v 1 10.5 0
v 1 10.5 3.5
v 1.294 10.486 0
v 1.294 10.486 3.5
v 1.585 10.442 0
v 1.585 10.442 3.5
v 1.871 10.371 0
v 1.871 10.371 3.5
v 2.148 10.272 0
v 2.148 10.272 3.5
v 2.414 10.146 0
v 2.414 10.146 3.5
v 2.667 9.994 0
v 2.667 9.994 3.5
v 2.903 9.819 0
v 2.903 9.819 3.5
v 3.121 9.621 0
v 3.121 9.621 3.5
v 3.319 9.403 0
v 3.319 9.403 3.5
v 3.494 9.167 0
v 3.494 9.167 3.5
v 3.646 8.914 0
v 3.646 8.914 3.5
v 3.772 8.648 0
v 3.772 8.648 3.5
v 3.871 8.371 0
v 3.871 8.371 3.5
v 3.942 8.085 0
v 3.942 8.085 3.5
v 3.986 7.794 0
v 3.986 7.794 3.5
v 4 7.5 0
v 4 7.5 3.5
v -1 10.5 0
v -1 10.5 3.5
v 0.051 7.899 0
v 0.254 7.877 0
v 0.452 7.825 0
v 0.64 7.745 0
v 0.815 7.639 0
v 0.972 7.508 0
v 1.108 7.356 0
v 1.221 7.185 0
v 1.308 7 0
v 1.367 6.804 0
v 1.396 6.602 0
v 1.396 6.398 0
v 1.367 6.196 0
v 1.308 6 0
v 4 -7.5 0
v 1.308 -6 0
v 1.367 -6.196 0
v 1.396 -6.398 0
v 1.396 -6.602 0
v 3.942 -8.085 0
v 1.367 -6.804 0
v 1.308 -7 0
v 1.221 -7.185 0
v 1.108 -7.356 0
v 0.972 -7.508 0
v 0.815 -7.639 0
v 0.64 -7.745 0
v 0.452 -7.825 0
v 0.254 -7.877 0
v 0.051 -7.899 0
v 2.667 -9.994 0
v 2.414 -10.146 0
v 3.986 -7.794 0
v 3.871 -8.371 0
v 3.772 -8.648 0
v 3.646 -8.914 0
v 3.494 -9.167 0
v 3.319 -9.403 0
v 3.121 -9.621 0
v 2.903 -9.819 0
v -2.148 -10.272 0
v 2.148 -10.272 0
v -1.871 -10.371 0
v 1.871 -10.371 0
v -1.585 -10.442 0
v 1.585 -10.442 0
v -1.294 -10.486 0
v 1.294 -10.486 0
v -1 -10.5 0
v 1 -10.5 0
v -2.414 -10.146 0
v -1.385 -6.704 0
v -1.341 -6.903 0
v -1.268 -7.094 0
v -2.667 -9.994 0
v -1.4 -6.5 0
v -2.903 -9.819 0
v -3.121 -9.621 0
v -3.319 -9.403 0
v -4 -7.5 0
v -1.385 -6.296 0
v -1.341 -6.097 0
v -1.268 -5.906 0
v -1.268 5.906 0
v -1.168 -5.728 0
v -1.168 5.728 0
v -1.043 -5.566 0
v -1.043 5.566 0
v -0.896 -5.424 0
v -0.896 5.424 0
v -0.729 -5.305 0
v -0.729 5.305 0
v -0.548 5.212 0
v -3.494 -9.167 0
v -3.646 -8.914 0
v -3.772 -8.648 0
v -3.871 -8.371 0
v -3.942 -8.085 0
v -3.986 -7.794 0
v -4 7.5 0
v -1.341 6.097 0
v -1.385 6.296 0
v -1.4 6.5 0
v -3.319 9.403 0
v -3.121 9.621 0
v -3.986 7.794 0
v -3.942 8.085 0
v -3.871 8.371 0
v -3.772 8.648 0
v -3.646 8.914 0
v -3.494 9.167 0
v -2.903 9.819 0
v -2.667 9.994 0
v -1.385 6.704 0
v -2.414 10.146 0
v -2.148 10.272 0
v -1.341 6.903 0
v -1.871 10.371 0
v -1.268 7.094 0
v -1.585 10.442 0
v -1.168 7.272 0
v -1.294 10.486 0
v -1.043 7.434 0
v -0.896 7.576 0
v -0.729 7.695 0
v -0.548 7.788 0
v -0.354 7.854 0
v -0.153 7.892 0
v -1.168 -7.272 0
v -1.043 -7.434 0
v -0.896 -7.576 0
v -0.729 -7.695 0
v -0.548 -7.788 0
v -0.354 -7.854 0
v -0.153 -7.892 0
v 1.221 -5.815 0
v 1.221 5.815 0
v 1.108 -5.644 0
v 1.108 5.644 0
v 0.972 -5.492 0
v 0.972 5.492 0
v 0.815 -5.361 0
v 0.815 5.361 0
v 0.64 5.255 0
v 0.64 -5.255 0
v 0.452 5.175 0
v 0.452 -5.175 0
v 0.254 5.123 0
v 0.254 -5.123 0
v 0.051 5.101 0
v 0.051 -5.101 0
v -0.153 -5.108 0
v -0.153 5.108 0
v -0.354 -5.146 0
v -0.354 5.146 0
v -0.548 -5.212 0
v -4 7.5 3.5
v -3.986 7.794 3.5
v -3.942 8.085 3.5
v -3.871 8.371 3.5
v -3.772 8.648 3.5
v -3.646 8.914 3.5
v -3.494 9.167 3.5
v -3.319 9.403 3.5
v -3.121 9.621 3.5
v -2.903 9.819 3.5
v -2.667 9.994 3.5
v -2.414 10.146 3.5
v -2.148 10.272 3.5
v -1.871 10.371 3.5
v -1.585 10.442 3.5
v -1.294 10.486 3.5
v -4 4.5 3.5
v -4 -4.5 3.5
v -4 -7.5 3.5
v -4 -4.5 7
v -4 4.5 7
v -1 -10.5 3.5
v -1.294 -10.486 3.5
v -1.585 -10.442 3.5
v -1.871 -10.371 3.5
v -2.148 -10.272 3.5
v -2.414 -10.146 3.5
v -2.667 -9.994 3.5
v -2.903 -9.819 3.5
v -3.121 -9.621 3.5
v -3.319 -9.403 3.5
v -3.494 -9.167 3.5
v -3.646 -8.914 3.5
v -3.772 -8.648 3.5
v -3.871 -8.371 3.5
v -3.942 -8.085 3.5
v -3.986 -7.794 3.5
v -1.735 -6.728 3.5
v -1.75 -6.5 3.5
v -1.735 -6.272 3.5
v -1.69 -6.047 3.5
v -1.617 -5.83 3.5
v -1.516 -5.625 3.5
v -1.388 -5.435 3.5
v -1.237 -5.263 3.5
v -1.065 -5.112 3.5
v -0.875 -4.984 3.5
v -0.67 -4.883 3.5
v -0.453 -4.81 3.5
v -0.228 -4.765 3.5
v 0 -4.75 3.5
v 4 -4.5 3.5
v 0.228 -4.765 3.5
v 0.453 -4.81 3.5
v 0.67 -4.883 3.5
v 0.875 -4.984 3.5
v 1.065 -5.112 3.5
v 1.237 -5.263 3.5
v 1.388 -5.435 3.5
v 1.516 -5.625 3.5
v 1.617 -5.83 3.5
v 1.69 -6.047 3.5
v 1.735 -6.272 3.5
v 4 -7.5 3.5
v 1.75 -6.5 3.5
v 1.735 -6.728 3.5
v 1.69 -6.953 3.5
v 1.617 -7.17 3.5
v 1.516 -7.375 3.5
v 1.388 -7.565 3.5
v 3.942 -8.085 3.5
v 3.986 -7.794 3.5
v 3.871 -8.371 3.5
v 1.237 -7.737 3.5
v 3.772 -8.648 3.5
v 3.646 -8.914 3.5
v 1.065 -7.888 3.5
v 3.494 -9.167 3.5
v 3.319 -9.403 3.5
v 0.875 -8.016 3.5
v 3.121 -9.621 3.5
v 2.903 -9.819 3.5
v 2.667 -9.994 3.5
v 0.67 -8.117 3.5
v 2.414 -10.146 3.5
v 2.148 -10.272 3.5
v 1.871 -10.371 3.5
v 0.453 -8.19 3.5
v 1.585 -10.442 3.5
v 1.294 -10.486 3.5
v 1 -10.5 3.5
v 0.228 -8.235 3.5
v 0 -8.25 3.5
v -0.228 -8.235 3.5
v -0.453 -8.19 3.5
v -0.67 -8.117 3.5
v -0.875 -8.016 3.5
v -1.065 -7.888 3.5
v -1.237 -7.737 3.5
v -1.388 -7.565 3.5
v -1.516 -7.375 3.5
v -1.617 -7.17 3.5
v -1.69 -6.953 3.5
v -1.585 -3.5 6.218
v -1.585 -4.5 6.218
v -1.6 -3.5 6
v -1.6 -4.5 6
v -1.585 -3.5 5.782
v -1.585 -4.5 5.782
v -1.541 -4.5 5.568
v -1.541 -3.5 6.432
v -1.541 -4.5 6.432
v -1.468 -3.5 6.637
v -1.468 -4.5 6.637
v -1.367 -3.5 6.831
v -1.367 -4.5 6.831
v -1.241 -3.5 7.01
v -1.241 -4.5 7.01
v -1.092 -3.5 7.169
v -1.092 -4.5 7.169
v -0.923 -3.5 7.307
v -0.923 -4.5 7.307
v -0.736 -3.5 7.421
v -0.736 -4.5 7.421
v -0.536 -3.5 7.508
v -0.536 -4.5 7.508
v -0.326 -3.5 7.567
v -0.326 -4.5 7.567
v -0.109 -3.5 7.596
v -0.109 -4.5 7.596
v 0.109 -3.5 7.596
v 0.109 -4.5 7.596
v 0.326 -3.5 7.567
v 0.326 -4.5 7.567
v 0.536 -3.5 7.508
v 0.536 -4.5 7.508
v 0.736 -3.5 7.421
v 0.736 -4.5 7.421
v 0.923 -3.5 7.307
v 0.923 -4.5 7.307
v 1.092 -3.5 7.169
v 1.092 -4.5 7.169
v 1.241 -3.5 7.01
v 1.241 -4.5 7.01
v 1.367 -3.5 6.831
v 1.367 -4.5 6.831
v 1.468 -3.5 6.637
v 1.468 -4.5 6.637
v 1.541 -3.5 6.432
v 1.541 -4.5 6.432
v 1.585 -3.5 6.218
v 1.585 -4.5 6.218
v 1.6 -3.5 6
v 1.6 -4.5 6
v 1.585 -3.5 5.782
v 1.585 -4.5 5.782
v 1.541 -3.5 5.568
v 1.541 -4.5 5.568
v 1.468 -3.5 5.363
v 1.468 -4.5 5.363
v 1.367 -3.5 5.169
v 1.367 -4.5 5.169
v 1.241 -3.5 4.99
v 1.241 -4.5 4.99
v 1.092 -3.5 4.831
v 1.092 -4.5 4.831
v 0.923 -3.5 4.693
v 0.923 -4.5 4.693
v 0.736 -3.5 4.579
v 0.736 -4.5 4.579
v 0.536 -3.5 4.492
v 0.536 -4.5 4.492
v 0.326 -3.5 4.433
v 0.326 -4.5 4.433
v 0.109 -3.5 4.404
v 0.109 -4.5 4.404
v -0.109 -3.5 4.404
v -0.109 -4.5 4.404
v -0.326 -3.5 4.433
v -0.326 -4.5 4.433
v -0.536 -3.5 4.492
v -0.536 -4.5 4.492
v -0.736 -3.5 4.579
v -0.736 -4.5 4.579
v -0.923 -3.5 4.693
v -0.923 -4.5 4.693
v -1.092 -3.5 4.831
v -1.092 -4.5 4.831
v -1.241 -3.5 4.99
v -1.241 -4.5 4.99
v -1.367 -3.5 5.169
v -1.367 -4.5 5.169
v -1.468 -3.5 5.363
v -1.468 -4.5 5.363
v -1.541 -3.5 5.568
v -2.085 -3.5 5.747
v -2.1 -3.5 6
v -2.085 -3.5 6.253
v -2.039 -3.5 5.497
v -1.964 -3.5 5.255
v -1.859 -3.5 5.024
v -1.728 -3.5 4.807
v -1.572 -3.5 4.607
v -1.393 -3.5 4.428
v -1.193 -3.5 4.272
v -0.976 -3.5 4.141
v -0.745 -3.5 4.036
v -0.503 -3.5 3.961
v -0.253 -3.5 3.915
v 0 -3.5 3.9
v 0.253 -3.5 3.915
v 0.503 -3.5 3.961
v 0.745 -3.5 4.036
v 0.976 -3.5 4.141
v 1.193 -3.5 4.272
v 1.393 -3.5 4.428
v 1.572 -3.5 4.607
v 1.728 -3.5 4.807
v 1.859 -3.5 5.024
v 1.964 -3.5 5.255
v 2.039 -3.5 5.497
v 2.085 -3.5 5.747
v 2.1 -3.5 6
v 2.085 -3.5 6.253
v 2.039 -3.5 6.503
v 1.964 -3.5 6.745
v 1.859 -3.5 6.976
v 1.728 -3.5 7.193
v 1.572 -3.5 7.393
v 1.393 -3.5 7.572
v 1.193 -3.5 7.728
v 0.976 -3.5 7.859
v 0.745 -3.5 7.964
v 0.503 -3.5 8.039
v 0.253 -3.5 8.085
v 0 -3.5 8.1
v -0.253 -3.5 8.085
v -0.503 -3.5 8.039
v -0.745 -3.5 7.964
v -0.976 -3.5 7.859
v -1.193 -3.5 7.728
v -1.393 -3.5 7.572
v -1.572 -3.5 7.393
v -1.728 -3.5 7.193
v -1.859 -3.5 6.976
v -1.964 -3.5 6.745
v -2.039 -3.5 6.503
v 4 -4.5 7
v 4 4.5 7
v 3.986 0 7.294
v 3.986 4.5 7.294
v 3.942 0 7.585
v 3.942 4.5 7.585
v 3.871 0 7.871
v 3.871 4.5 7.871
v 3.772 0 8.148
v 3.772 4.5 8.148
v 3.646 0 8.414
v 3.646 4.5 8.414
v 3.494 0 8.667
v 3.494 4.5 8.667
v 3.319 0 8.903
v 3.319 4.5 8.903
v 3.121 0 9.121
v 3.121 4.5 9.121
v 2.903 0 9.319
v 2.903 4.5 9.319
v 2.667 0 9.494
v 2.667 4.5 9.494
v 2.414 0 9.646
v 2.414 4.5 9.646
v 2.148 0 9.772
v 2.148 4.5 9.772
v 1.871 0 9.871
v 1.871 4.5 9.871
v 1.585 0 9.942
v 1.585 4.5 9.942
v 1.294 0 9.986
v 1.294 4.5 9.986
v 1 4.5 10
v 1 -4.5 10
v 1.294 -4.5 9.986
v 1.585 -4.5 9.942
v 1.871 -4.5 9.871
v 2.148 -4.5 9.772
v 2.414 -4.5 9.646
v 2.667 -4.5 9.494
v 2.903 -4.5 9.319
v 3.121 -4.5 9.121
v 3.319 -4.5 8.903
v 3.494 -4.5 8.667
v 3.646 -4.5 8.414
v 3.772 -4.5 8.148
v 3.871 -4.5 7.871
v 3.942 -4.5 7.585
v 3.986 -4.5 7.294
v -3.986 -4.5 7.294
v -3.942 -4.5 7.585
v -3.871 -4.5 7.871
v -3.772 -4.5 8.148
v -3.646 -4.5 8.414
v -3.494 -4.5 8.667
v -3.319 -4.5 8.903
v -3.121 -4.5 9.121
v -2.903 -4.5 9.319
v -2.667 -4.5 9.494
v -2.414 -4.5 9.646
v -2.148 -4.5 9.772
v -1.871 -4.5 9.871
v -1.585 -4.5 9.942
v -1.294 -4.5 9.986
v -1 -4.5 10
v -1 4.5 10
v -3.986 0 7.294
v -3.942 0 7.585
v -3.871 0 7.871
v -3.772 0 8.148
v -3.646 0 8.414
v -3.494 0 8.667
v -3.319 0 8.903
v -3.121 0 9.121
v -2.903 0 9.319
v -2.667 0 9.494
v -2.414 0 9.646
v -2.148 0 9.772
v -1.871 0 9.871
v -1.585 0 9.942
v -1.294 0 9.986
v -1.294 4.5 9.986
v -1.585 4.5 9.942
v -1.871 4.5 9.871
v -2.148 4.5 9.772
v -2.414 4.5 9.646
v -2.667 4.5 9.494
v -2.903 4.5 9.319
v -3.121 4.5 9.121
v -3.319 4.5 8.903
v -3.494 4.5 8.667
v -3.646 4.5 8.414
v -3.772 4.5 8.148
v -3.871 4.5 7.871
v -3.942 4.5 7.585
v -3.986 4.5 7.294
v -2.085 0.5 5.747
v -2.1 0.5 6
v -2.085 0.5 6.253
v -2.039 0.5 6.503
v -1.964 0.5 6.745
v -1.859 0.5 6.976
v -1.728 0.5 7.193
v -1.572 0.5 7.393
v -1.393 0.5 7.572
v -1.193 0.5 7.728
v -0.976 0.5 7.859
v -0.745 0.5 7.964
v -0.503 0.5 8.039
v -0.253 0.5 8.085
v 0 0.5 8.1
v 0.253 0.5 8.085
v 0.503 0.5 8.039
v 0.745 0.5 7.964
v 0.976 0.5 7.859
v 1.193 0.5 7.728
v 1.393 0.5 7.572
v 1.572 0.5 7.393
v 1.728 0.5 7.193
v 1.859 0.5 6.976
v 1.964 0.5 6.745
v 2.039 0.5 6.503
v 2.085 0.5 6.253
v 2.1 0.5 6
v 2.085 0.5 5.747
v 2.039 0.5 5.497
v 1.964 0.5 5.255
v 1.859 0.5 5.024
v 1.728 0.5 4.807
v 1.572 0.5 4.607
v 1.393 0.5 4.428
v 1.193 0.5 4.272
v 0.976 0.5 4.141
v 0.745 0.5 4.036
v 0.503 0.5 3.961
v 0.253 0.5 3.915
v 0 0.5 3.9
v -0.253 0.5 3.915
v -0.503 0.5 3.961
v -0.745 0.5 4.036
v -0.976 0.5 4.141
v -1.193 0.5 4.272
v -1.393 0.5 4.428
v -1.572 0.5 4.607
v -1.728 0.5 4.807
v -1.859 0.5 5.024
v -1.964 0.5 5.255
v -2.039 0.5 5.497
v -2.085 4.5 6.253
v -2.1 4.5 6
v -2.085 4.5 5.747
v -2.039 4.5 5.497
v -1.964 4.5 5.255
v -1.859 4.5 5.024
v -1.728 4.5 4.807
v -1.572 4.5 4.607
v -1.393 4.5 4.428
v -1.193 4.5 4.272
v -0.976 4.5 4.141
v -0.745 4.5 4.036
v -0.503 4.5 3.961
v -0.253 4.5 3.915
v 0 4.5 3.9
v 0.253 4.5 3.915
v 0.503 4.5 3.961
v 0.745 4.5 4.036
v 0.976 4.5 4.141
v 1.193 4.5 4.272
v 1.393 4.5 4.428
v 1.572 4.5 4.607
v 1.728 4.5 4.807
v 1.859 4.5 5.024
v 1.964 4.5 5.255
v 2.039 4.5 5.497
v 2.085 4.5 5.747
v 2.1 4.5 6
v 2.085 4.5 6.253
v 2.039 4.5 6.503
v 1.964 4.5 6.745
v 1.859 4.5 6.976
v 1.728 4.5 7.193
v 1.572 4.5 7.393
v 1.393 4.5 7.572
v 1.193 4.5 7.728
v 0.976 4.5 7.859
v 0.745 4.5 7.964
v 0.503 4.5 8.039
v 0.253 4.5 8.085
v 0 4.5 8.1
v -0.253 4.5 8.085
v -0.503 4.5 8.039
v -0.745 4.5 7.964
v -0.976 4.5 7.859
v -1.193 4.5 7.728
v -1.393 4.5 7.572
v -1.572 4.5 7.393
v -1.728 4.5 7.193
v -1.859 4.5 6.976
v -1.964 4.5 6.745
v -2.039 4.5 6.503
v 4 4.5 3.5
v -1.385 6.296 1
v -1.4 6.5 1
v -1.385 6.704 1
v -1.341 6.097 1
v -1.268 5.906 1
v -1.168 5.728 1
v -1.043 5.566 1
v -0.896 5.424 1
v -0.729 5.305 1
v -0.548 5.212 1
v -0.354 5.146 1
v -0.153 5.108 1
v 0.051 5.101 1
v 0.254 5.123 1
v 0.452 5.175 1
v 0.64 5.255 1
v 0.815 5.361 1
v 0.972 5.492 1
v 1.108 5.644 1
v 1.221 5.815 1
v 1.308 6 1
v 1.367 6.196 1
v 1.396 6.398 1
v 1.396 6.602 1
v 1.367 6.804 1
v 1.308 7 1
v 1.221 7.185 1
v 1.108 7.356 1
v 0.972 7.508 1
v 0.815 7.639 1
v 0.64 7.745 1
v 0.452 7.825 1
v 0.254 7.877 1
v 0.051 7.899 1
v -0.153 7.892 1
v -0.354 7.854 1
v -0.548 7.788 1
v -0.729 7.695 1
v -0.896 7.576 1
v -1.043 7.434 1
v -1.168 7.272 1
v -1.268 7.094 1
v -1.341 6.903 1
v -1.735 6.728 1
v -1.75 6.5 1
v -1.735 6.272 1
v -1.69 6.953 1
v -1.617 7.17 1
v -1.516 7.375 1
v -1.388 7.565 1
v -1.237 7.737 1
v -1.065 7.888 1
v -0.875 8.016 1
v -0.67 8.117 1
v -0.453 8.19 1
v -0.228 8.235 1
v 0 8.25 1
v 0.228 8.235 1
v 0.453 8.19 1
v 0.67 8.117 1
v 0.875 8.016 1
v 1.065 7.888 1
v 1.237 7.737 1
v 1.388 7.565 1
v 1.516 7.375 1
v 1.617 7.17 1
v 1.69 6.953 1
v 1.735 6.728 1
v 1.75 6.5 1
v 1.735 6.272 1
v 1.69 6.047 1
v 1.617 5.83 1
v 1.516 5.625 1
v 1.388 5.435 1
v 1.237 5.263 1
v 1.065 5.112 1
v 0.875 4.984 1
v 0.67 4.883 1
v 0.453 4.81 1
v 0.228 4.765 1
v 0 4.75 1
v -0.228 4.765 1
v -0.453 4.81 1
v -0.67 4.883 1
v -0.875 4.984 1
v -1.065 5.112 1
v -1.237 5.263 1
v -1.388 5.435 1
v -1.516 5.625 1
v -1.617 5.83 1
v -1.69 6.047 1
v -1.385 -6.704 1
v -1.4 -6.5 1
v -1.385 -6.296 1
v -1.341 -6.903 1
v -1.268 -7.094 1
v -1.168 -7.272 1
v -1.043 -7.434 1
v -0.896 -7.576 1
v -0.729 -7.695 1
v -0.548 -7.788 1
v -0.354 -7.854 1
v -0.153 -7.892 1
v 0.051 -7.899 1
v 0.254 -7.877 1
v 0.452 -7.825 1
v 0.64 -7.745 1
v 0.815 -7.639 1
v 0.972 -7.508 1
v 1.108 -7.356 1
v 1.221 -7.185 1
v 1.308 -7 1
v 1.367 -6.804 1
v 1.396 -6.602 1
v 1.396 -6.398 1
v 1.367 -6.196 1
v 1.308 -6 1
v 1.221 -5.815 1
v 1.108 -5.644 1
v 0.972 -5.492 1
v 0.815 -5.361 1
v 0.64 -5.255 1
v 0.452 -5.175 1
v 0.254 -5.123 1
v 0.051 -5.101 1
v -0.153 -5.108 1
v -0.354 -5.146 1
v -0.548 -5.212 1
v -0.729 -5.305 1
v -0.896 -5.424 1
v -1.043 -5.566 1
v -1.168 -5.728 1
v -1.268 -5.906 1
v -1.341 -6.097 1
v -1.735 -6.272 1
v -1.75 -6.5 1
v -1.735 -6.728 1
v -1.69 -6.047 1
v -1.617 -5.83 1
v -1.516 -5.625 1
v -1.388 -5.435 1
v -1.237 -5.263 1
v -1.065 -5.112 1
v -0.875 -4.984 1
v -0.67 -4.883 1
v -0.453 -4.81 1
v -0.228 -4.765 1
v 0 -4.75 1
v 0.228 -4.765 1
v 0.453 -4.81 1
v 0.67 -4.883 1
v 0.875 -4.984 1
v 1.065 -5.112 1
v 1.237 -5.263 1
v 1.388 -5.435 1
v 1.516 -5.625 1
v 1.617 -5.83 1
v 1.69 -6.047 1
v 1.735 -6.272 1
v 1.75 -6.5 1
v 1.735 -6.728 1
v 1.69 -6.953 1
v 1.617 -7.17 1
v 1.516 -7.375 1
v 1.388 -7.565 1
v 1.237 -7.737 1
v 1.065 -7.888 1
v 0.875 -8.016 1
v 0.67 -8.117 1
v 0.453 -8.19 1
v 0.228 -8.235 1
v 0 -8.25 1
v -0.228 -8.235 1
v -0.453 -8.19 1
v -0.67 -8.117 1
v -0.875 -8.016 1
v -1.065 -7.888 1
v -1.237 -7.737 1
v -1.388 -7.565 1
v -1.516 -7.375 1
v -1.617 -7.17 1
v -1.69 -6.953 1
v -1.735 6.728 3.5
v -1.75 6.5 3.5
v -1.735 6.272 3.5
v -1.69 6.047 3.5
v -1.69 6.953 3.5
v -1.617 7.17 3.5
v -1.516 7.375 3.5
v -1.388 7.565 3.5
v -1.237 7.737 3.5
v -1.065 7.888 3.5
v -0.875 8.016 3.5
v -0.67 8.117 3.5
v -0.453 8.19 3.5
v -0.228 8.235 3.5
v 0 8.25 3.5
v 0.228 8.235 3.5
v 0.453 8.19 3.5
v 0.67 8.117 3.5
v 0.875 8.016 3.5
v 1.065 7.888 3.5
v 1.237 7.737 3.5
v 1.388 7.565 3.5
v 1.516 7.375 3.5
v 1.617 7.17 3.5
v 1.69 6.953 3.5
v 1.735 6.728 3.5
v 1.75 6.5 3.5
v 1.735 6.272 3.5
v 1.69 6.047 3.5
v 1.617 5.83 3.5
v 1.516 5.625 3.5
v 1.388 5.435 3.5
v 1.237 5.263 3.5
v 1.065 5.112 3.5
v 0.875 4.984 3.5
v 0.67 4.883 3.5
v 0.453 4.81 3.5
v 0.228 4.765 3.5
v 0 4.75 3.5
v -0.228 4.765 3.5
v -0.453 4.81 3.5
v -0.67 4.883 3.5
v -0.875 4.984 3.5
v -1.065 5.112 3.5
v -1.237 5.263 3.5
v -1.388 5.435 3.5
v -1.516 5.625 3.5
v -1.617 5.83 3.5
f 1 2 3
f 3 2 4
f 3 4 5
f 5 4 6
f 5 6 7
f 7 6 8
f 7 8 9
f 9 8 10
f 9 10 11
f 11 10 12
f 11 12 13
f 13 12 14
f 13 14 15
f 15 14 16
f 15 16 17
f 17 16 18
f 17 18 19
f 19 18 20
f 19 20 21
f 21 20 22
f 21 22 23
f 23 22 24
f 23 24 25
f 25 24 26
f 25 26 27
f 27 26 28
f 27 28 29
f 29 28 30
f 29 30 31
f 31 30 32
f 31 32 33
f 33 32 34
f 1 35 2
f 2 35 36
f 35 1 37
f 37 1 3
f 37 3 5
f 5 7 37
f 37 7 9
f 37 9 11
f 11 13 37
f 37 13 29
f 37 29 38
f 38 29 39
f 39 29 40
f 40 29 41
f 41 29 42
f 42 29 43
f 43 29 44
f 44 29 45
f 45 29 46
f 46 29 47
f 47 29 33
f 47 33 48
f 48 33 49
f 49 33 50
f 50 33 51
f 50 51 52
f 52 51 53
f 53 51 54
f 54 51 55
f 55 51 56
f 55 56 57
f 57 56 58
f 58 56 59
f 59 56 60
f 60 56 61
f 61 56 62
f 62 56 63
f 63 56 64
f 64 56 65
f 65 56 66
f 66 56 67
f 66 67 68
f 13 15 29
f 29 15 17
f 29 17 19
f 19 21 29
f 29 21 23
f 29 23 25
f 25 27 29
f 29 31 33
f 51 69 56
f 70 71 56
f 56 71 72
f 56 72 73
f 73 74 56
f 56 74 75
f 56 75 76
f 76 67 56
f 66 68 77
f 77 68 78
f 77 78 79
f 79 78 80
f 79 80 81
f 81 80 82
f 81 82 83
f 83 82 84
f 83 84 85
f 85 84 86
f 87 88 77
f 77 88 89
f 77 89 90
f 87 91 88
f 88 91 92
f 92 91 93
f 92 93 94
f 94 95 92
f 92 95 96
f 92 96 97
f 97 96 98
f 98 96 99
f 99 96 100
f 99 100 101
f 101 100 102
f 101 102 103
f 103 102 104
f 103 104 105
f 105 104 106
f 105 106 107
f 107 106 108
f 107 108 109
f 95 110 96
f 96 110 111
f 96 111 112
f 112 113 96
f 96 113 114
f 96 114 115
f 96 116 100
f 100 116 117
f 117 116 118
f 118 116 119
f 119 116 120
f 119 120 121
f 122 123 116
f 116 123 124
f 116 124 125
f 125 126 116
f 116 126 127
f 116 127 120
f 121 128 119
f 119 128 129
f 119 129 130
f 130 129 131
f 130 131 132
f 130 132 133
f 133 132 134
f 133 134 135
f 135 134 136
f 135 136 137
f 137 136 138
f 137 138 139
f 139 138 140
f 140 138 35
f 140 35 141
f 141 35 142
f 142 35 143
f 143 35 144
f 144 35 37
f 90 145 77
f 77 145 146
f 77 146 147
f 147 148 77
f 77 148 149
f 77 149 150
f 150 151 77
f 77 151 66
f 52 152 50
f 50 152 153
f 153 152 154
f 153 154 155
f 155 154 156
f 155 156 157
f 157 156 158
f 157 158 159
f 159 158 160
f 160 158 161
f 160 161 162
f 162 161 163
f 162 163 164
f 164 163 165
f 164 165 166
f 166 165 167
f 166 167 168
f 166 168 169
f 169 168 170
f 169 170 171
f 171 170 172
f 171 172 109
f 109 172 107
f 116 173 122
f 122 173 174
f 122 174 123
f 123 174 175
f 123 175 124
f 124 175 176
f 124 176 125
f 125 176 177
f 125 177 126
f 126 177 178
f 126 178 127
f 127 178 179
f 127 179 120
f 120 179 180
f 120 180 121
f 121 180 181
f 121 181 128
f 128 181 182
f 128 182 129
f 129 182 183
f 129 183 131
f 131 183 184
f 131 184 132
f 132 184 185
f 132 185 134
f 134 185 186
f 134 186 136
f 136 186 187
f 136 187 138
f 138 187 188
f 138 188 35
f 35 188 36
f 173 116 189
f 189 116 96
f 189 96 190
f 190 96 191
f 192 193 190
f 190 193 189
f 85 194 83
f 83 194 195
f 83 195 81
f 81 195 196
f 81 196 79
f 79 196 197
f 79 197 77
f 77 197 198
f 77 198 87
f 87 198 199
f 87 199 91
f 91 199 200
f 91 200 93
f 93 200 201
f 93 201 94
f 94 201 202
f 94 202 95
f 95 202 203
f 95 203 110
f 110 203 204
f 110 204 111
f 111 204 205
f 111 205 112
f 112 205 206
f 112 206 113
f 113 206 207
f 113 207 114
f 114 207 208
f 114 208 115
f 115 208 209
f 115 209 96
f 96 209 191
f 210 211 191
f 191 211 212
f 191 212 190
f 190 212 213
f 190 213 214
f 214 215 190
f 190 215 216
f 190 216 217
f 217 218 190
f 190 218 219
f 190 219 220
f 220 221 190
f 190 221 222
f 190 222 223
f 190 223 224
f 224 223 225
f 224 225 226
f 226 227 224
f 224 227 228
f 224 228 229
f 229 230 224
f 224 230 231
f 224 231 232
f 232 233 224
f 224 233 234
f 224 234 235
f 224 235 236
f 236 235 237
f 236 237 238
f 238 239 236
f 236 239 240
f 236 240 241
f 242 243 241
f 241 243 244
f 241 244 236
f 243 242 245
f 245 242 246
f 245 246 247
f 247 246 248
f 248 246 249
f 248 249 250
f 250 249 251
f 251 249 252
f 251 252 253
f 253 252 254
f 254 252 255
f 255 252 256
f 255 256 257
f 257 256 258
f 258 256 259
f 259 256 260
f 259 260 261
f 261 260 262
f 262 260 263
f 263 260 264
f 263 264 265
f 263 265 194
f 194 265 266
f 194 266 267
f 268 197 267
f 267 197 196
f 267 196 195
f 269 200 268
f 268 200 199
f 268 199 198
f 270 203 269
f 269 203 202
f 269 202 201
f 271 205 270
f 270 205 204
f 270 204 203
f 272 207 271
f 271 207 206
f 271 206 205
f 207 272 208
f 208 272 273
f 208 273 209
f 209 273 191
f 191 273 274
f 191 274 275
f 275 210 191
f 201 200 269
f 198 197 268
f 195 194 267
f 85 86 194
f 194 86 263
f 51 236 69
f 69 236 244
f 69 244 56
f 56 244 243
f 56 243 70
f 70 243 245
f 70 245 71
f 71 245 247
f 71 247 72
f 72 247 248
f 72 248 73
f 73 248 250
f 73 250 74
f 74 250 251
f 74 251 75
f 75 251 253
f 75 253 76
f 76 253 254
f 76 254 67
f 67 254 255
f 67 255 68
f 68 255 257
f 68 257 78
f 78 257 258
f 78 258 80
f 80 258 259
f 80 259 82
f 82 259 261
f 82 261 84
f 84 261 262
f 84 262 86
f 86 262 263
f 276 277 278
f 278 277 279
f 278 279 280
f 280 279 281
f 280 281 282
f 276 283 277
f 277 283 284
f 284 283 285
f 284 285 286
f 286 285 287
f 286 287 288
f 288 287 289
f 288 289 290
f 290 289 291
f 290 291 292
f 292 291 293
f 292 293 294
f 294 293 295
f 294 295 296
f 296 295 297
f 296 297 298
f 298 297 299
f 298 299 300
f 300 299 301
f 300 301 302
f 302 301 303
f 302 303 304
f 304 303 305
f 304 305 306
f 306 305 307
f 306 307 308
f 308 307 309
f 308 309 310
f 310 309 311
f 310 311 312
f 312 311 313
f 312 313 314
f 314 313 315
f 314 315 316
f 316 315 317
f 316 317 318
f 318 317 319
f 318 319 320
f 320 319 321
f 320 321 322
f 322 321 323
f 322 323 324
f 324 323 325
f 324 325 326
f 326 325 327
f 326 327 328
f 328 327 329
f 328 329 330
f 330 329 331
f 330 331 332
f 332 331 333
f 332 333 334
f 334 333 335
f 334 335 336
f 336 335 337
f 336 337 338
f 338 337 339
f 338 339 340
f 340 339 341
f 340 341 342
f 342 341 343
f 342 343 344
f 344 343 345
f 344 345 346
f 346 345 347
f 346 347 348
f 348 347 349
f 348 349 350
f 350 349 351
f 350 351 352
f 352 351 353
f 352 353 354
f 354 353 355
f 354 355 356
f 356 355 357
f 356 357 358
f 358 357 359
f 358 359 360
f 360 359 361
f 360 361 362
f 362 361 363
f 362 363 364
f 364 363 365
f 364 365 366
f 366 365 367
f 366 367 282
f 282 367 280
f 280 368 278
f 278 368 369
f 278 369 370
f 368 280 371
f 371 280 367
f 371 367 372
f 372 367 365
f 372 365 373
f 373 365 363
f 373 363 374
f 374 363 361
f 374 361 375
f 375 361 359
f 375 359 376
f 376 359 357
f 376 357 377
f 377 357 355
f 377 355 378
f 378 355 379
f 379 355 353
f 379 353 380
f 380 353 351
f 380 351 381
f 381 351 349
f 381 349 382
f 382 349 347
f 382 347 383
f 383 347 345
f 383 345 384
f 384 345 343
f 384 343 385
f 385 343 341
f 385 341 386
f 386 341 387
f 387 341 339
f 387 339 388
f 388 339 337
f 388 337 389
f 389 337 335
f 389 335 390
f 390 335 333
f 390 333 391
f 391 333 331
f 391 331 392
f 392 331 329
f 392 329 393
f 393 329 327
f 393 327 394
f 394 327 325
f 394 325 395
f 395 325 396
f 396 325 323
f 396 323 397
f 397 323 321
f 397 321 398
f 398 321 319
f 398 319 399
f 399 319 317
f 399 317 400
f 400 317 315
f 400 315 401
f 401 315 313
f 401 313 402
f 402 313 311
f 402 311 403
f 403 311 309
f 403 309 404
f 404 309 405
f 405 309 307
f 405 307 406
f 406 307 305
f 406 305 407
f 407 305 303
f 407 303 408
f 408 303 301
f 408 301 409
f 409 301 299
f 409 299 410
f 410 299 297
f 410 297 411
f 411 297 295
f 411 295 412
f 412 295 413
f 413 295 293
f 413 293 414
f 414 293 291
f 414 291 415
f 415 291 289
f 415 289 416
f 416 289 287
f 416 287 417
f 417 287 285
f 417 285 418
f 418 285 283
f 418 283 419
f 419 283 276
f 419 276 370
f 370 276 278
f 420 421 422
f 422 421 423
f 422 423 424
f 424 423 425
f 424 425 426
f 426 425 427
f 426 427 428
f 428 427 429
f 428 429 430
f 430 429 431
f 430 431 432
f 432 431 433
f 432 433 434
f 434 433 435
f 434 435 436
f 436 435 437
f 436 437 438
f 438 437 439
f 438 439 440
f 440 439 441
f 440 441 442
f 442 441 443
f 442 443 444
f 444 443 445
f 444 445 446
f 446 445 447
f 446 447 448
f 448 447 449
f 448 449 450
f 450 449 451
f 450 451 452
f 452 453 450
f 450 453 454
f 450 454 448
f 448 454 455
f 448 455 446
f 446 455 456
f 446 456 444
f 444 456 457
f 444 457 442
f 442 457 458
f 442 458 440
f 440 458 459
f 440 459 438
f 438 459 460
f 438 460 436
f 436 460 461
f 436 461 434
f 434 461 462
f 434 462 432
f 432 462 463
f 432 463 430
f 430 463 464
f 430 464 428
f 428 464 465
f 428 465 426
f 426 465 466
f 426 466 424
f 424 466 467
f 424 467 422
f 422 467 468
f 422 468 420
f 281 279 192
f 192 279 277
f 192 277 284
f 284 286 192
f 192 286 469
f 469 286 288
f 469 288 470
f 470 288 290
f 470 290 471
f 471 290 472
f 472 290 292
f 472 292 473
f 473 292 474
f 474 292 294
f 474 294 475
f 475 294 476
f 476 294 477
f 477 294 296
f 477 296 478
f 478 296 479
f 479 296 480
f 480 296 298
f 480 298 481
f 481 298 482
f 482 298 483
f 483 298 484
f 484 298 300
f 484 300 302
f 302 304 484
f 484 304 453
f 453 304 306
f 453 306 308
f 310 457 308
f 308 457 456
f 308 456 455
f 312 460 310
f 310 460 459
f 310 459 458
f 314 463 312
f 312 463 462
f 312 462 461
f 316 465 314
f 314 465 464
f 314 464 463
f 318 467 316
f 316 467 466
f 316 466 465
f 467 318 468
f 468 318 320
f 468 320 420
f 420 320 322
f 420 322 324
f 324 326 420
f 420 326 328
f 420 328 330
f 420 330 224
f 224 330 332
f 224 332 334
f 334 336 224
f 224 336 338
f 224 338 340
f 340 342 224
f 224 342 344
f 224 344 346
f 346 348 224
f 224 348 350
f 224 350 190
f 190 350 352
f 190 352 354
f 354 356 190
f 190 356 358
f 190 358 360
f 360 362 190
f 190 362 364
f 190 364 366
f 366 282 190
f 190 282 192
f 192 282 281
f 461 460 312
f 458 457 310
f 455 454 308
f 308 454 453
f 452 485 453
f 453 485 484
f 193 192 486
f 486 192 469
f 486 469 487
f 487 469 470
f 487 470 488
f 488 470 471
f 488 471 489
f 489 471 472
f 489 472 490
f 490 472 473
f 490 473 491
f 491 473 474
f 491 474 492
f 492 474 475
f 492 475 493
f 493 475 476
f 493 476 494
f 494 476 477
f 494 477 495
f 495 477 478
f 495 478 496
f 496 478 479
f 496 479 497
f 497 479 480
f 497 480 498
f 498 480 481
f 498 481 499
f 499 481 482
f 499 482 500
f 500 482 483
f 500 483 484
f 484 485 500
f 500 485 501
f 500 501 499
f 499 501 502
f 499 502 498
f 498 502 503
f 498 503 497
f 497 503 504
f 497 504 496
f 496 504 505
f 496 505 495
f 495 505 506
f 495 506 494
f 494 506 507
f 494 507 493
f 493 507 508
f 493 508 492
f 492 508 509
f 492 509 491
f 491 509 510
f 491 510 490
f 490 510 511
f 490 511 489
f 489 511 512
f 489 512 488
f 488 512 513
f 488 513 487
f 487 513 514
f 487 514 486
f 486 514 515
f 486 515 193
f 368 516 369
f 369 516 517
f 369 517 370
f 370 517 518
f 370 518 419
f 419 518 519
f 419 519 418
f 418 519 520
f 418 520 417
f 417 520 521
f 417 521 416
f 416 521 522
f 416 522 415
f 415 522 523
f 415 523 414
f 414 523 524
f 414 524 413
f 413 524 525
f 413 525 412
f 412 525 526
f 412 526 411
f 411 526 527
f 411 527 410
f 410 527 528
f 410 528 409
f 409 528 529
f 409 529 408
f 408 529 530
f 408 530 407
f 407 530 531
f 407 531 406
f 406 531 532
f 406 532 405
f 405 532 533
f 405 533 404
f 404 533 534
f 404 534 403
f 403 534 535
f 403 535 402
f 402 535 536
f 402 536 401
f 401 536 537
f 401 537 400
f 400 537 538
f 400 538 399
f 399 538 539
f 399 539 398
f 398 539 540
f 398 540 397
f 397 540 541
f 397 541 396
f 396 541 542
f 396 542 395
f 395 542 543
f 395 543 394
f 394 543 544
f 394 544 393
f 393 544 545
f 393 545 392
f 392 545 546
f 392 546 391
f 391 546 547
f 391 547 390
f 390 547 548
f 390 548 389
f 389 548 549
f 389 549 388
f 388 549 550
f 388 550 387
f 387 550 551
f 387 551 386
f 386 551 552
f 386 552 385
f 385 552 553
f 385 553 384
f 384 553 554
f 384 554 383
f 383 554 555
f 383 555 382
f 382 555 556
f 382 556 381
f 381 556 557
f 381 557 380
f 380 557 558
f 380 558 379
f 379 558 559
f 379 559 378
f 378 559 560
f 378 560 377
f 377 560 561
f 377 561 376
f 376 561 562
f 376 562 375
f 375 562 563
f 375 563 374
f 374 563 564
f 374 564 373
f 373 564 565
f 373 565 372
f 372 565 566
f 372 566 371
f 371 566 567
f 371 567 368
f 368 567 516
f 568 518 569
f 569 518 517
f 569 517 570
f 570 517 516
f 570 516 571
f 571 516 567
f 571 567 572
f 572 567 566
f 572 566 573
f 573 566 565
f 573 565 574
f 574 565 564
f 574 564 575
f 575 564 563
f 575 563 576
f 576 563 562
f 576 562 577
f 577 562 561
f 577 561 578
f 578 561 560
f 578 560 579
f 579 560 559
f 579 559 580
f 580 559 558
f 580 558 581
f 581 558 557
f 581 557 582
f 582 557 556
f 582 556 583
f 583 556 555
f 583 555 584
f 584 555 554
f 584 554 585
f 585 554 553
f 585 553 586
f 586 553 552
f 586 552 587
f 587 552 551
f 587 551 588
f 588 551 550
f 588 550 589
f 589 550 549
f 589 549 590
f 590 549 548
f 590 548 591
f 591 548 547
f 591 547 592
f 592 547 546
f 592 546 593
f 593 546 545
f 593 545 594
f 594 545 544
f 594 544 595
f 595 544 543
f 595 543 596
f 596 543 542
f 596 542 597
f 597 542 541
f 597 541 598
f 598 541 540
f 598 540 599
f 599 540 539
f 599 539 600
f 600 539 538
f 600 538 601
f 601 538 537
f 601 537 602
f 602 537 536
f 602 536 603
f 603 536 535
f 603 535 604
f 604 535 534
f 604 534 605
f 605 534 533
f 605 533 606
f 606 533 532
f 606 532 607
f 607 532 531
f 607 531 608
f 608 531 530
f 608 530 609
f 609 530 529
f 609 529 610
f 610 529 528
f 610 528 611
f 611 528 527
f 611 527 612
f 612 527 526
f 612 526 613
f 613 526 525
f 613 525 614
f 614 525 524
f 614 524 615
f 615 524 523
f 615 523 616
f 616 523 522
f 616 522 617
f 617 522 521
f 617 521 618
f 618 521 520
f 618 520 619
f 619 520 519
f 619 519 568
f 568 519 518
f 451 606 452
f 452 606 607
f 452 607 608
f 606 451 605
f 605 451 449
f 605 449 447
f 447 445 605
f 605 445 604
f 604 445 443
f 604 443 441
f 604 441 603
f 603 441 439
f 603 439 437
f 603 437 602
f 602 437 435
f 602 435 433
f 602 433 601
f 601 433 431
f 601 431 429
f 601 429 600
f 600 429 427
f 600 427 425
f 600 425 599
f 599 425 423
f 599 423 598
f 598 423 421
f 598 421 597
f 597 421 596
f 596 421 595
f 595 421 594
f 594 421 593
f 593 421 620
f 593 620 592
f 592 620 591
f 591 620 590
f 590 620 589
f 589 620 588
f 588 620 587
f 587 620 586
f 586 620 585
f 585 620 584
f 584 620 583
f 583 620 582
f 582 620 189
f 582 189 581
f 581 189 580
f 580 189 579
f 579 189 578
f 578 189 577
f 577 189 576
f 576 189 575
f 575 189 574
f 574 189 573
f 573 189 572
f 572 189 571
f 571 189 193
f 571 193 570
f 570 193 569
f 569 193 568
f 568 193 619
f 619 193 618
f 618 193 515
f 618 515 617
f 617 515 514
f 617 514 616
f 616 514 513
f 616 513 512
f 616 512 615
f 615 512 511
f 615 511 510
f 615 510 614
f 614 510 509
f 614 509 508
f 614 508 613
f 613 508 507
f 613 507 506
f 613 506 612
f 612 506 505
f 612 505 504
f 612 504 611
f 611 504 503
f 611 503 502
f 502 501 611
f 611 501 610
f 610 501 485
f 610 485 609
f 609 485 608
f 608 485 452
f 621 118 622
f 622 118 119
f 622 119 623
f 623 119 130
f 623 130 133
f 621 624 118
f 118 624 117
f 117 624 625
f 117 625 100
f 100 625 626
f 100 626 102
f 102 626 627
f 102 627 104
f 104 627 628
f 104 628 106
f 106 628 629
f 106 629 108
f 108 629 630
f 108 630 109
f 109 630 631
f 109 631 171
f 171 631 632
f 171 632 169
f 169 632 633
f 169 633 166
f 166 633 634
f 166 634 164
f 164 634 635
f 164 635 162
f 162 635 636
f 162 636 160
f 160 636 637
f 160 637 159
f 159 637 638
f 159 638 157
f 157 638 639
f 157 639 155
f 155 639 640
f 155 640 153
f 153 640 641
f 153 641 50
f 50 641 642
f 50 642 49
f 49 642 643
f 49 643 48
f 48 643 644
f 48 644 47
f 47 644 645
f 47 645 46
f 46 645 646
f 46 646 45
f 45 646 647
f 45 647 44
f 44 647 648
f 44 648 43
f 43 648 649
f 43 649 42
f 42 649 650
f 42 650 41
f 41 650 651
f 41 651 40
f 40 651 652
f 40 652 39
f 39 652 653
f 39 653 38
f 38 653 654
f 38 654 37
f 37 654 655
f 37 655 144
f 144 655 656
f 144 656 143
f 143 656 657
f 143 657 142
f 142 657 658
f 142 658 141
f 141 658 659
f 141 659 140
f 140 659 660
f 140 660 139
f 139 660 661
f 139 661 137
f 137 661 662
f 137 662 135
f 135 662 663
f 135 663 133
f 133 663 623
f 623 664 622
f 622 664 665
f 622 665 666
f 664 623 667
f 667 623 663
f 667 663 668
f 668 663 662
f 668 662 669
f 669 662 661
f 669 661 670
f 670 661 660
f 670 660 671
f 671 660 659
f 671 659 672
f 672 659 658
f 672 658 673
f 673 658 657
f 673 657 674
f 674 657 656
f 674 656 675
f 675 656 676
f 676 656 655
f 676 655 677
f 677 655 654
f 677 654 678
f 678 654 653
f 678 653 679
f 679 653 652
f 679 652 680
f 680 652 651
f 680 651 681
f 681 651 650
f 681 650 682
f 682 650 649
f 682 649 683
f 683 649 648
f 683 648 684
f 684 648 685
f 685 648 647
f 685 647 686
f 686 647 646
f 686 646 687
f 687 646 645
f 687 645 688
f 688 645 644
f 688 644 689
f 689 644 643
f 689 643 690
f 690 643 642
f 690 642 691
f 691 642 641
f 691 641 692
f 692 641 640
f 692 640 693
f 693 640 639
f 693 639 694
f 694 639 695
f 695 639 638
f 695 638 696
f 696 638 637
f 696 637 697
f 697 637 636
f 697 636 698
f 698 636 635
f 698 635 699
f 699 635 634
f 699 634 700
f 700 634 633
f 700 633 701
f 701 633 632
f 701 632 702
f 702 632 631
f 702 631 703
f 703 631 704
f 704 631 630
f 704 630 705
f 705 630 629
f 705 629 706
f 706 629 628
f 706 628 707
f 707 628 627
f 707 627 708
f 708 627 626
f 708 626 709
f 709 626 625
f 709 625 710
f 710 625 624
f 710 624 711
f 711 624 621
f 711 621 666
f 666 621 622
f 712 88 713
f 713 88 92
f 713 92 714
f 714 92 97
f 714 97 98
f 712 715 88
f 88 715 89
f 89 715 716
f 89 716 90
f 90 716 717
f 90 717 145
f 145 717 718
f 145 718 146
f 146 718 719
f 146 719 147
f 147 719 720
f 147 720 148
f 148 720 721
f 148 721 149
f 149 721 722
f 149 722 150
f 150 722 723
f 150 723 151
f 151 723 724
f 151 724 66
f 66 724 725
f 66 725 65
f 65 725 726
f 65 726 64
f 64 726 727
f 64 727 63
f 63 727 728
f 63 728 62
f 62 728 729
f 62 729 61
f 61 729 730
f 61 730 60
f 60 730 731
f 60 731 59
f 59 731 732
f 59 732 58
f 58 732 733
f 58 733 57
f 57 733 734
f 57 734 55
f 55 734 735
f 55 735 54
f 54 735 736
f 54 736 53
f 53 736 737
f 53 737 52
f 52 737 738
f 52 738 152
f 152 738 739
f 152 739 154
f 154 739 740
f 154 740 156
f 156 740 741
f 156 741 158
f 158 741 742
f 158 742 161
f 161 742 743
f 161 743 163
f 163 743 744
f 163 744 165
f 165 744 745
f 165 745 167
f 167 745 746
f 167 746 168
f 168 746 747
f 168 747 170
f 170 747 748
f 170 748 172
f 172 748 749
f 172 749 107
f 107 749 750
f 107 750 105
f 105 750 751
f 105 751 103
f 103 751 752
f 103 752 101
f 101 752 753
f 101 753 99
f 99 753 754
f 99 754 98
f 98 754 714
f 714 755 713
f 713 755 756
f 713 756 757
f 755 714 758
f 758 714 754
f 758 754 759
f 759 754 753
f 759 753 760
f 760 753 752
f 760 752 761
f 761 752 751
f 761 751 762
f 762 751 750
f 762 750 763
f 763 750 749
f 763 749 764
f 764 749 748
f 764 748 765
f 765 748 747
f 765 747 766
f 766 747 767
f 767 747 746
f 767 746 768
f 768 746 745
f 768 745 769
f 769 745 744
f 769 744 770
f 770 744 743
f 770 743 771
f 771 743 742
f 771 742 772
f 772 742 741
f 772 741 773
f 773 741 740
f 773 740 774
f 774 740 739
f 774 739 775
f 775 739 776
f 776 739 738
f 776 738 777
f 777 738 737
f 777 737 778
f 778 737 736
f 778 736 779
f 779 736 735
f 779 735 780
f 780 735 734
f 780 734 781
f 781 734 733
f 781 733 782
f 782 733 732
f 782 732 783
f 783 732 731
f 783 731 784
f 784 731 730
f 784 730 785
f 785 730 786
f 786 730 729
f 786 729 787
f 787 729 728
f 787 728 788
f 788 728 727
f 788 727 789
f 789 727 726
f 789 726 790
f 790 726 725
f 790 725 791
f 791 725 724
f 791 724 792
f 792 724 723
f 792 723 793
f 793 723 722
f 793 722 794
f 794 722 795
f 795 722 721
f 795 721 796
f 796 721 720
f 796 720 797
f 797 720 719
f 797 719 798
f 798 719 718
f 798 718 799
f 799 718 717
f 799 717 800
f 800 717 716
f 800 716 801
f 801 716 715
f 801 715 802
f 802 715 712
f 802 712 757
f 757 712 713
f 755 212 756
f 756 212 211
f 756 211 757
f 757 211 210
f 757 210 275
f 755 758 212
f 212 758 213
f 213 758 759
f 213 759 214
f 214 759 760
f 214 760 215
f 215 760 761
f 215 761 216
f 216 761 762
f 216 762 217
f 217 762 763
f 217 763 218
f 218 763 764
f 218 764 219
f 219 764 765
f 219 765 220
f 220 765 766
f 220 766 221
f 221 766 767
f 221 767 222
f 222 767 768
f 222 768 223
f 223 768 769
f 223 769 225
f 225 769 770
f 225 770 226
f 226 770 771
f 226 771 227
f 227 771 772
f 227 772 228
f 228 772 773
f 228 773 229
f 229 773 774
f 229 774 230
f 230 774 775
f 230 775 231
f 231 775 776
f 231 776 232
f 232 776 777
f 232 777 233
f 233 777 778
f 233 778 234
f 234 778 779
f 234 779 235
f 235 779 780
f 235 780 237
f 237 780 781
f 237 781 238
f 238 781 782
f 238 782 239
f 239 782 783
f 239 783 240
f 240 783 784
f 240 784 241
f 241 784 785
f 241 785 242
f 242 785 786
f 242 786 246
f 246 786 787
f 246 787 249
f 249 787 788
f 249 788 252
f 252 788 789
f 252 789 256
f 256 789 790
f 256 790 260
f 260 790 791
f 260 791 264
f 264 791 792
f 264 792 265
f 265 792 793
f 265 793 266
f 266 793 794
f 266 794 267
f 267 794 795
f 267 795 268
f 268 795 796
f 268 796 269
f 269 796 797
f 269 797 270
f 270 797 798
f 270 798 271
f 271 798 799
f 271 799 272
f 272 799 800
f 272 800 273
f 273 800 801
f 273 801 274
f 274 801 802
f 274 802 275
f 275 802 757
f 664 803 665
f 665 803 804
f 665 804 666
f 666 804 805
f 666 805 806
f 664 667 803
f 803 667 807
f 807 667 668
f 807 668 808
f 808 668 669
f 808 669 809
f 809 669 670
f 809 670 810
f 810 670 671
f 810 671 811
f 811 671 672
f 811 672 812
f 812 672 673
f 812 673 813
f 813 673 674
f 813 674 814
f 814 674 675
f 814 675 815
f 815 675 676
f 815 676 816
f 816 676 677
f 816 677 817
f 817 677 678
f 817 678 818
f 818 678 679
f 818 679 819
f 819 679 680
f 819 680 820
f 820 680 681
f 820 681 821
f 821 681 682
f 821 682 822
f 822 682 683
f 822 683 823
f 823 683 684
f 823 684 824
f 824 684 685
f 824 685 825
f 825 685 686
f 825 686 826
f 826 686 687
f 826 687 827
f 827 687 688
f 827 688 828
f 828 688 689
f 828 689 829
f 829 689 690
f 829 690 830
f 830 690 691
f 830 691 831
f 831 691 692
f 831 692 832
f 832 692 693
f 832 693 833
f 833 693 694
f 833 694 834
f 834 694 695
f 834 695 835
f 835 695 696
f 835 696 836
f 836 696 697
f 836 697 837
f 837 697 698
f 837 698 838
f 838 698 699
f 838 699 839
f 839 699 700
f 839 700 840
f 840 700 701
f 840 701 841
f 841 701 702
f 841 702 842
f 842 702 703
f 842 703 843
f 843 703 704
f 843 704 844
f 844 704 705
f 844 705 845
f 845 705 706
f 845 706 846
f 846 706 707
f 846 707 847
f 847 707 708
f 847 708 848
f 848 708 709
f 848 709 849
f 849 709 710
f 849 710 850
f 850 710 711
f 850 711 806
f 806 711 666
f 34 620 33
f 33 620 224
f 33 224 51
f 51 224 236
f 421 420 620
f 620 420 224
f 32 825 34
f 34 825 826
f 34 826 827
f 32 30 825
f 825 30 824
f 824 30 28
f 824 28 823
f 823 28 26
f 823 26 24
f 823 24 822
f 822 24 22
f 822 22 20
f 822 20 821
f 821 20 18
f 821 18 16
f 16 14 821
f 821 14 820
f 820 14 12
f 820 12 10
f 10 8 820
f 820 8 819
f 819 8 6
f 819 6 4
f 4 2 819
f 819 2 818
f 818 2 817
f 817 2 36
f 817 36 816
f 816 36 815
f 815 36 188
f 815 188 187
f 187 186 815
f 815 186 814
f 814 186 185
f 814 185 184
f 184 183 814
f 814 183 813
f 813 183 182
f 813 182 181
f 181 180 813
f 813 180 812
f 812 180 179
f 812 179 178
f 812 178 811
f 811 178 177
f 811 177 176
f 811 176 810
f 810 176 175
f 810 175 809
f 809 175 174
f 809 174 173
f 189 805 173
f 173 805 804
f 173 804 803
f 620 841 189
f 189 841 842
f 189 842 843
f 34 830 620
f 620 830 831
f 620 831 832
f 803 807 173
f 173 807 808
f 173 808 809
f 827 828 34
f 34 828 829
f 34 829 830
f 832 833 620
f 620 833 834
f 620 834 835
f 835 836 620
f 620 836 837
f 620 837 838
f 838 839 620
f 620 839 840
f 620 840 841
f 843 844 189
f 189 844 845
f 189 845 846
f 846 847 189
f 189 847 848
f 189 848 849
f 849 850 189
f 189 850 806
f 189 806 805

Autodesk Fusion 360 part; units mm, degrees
sketch "Sketch1" plane through (0, 0, 0) normal (0, 0, 1) x (1, 0, 0)
  line L0 (0, 6.5) -> (0, -6.5) construction
  circle A0 centre (0, 6.5) radius 1.75
  circle A1 centre (0, -6.5) radius 1.75
  line L1 (4, -4.5) -> (-4, -4.5)
  line L2 (-4, -4.5) -> (-4, 4.5) construction
  line L3 (-4, 4.5) -> (4, 4.5)
  line L4 (4, 4.5) -> (4, -4.5) construction
  line L5 (4, -4.5) -> (-4, 4.5) construction
  line L6 (-4, -4.5) -> (4, 4.5) construction
  line L7 (4, -10.5) -> (-4, -10.5)
  line L8 (-4, -10.5) -> (-4, 10.5)
  line L9 (-4, 10.5) -> (4, 10.5)
  line L10 (4, 10.5) -> (4, -10.5)
  line L11 (4, -10.5) -> (-4, 10.5) construction
  line L12 (-4, -10.5) -> (4, 10.5) construction
  circle A2 centre (0, -6.5) radius 1.4
  circle A3 centre (0, 6.5) radius 1.4
  dimension "d1" = 13
  dimension "d2" = 3.5
  dimension "d3" = 3.5
  dimension "d5" = 9
  dimension "d10" = 2.8
  dimension "d11" = 2.8
  dimension "d14" = 4
  dimension "d15" = 4
extrude "Extrude1" add sketch "Sketch1" along normal blind 3.5 contours L1 L7 L8 L10 | L1 L3 L8 L10 | L3 L8 L9 L10
extrude "Extrude2" add sketch "Sketch1" along normal blind 1 contours A0 | A1
extrude "Extrude3" add sketch "Sketch1" along normal blind 10 contours L1 L3 L8 L10
sketch "Sketch2" plane through (0, -4.5, 0) normal (0, -1, 0) x (1, 0, 0)
  line L0 (-4, 3.5) -> (4, 3.5)
  line L1 (4, 3.5) -> (4, 10)
  line L2 (4, 10) -> (-4, 10)
  line L3 (-4, 10) -> (-4, 3.5)
  circle A0 centre (0, 6) radius 2.1
  line L4 (0, 6) -> (0, 3.5)
  circle A1 centre (0, 6) radius 1.6
  dimension "d18" = 4.2
  dimension "d19" = 2.5
  dimension "d24" = 3.2
extrude "Extrude4" cut sketch "Sketch2" against normal blind 14 contours A1 | A0
fillet "Fillet1" radius 3 2 edges at (-4, 0, 10) (4, 0, 10)
extrude "Extrude5" add sketch "Sketch2" against normal blind 1 contours A0
fillet "Fillet2" radius 3 4 edges at (4, -10.5, 1.75) (-4, -10.5, 1.75) (-4, 10.5, 1.75) (4, 10.5, 1.75)
